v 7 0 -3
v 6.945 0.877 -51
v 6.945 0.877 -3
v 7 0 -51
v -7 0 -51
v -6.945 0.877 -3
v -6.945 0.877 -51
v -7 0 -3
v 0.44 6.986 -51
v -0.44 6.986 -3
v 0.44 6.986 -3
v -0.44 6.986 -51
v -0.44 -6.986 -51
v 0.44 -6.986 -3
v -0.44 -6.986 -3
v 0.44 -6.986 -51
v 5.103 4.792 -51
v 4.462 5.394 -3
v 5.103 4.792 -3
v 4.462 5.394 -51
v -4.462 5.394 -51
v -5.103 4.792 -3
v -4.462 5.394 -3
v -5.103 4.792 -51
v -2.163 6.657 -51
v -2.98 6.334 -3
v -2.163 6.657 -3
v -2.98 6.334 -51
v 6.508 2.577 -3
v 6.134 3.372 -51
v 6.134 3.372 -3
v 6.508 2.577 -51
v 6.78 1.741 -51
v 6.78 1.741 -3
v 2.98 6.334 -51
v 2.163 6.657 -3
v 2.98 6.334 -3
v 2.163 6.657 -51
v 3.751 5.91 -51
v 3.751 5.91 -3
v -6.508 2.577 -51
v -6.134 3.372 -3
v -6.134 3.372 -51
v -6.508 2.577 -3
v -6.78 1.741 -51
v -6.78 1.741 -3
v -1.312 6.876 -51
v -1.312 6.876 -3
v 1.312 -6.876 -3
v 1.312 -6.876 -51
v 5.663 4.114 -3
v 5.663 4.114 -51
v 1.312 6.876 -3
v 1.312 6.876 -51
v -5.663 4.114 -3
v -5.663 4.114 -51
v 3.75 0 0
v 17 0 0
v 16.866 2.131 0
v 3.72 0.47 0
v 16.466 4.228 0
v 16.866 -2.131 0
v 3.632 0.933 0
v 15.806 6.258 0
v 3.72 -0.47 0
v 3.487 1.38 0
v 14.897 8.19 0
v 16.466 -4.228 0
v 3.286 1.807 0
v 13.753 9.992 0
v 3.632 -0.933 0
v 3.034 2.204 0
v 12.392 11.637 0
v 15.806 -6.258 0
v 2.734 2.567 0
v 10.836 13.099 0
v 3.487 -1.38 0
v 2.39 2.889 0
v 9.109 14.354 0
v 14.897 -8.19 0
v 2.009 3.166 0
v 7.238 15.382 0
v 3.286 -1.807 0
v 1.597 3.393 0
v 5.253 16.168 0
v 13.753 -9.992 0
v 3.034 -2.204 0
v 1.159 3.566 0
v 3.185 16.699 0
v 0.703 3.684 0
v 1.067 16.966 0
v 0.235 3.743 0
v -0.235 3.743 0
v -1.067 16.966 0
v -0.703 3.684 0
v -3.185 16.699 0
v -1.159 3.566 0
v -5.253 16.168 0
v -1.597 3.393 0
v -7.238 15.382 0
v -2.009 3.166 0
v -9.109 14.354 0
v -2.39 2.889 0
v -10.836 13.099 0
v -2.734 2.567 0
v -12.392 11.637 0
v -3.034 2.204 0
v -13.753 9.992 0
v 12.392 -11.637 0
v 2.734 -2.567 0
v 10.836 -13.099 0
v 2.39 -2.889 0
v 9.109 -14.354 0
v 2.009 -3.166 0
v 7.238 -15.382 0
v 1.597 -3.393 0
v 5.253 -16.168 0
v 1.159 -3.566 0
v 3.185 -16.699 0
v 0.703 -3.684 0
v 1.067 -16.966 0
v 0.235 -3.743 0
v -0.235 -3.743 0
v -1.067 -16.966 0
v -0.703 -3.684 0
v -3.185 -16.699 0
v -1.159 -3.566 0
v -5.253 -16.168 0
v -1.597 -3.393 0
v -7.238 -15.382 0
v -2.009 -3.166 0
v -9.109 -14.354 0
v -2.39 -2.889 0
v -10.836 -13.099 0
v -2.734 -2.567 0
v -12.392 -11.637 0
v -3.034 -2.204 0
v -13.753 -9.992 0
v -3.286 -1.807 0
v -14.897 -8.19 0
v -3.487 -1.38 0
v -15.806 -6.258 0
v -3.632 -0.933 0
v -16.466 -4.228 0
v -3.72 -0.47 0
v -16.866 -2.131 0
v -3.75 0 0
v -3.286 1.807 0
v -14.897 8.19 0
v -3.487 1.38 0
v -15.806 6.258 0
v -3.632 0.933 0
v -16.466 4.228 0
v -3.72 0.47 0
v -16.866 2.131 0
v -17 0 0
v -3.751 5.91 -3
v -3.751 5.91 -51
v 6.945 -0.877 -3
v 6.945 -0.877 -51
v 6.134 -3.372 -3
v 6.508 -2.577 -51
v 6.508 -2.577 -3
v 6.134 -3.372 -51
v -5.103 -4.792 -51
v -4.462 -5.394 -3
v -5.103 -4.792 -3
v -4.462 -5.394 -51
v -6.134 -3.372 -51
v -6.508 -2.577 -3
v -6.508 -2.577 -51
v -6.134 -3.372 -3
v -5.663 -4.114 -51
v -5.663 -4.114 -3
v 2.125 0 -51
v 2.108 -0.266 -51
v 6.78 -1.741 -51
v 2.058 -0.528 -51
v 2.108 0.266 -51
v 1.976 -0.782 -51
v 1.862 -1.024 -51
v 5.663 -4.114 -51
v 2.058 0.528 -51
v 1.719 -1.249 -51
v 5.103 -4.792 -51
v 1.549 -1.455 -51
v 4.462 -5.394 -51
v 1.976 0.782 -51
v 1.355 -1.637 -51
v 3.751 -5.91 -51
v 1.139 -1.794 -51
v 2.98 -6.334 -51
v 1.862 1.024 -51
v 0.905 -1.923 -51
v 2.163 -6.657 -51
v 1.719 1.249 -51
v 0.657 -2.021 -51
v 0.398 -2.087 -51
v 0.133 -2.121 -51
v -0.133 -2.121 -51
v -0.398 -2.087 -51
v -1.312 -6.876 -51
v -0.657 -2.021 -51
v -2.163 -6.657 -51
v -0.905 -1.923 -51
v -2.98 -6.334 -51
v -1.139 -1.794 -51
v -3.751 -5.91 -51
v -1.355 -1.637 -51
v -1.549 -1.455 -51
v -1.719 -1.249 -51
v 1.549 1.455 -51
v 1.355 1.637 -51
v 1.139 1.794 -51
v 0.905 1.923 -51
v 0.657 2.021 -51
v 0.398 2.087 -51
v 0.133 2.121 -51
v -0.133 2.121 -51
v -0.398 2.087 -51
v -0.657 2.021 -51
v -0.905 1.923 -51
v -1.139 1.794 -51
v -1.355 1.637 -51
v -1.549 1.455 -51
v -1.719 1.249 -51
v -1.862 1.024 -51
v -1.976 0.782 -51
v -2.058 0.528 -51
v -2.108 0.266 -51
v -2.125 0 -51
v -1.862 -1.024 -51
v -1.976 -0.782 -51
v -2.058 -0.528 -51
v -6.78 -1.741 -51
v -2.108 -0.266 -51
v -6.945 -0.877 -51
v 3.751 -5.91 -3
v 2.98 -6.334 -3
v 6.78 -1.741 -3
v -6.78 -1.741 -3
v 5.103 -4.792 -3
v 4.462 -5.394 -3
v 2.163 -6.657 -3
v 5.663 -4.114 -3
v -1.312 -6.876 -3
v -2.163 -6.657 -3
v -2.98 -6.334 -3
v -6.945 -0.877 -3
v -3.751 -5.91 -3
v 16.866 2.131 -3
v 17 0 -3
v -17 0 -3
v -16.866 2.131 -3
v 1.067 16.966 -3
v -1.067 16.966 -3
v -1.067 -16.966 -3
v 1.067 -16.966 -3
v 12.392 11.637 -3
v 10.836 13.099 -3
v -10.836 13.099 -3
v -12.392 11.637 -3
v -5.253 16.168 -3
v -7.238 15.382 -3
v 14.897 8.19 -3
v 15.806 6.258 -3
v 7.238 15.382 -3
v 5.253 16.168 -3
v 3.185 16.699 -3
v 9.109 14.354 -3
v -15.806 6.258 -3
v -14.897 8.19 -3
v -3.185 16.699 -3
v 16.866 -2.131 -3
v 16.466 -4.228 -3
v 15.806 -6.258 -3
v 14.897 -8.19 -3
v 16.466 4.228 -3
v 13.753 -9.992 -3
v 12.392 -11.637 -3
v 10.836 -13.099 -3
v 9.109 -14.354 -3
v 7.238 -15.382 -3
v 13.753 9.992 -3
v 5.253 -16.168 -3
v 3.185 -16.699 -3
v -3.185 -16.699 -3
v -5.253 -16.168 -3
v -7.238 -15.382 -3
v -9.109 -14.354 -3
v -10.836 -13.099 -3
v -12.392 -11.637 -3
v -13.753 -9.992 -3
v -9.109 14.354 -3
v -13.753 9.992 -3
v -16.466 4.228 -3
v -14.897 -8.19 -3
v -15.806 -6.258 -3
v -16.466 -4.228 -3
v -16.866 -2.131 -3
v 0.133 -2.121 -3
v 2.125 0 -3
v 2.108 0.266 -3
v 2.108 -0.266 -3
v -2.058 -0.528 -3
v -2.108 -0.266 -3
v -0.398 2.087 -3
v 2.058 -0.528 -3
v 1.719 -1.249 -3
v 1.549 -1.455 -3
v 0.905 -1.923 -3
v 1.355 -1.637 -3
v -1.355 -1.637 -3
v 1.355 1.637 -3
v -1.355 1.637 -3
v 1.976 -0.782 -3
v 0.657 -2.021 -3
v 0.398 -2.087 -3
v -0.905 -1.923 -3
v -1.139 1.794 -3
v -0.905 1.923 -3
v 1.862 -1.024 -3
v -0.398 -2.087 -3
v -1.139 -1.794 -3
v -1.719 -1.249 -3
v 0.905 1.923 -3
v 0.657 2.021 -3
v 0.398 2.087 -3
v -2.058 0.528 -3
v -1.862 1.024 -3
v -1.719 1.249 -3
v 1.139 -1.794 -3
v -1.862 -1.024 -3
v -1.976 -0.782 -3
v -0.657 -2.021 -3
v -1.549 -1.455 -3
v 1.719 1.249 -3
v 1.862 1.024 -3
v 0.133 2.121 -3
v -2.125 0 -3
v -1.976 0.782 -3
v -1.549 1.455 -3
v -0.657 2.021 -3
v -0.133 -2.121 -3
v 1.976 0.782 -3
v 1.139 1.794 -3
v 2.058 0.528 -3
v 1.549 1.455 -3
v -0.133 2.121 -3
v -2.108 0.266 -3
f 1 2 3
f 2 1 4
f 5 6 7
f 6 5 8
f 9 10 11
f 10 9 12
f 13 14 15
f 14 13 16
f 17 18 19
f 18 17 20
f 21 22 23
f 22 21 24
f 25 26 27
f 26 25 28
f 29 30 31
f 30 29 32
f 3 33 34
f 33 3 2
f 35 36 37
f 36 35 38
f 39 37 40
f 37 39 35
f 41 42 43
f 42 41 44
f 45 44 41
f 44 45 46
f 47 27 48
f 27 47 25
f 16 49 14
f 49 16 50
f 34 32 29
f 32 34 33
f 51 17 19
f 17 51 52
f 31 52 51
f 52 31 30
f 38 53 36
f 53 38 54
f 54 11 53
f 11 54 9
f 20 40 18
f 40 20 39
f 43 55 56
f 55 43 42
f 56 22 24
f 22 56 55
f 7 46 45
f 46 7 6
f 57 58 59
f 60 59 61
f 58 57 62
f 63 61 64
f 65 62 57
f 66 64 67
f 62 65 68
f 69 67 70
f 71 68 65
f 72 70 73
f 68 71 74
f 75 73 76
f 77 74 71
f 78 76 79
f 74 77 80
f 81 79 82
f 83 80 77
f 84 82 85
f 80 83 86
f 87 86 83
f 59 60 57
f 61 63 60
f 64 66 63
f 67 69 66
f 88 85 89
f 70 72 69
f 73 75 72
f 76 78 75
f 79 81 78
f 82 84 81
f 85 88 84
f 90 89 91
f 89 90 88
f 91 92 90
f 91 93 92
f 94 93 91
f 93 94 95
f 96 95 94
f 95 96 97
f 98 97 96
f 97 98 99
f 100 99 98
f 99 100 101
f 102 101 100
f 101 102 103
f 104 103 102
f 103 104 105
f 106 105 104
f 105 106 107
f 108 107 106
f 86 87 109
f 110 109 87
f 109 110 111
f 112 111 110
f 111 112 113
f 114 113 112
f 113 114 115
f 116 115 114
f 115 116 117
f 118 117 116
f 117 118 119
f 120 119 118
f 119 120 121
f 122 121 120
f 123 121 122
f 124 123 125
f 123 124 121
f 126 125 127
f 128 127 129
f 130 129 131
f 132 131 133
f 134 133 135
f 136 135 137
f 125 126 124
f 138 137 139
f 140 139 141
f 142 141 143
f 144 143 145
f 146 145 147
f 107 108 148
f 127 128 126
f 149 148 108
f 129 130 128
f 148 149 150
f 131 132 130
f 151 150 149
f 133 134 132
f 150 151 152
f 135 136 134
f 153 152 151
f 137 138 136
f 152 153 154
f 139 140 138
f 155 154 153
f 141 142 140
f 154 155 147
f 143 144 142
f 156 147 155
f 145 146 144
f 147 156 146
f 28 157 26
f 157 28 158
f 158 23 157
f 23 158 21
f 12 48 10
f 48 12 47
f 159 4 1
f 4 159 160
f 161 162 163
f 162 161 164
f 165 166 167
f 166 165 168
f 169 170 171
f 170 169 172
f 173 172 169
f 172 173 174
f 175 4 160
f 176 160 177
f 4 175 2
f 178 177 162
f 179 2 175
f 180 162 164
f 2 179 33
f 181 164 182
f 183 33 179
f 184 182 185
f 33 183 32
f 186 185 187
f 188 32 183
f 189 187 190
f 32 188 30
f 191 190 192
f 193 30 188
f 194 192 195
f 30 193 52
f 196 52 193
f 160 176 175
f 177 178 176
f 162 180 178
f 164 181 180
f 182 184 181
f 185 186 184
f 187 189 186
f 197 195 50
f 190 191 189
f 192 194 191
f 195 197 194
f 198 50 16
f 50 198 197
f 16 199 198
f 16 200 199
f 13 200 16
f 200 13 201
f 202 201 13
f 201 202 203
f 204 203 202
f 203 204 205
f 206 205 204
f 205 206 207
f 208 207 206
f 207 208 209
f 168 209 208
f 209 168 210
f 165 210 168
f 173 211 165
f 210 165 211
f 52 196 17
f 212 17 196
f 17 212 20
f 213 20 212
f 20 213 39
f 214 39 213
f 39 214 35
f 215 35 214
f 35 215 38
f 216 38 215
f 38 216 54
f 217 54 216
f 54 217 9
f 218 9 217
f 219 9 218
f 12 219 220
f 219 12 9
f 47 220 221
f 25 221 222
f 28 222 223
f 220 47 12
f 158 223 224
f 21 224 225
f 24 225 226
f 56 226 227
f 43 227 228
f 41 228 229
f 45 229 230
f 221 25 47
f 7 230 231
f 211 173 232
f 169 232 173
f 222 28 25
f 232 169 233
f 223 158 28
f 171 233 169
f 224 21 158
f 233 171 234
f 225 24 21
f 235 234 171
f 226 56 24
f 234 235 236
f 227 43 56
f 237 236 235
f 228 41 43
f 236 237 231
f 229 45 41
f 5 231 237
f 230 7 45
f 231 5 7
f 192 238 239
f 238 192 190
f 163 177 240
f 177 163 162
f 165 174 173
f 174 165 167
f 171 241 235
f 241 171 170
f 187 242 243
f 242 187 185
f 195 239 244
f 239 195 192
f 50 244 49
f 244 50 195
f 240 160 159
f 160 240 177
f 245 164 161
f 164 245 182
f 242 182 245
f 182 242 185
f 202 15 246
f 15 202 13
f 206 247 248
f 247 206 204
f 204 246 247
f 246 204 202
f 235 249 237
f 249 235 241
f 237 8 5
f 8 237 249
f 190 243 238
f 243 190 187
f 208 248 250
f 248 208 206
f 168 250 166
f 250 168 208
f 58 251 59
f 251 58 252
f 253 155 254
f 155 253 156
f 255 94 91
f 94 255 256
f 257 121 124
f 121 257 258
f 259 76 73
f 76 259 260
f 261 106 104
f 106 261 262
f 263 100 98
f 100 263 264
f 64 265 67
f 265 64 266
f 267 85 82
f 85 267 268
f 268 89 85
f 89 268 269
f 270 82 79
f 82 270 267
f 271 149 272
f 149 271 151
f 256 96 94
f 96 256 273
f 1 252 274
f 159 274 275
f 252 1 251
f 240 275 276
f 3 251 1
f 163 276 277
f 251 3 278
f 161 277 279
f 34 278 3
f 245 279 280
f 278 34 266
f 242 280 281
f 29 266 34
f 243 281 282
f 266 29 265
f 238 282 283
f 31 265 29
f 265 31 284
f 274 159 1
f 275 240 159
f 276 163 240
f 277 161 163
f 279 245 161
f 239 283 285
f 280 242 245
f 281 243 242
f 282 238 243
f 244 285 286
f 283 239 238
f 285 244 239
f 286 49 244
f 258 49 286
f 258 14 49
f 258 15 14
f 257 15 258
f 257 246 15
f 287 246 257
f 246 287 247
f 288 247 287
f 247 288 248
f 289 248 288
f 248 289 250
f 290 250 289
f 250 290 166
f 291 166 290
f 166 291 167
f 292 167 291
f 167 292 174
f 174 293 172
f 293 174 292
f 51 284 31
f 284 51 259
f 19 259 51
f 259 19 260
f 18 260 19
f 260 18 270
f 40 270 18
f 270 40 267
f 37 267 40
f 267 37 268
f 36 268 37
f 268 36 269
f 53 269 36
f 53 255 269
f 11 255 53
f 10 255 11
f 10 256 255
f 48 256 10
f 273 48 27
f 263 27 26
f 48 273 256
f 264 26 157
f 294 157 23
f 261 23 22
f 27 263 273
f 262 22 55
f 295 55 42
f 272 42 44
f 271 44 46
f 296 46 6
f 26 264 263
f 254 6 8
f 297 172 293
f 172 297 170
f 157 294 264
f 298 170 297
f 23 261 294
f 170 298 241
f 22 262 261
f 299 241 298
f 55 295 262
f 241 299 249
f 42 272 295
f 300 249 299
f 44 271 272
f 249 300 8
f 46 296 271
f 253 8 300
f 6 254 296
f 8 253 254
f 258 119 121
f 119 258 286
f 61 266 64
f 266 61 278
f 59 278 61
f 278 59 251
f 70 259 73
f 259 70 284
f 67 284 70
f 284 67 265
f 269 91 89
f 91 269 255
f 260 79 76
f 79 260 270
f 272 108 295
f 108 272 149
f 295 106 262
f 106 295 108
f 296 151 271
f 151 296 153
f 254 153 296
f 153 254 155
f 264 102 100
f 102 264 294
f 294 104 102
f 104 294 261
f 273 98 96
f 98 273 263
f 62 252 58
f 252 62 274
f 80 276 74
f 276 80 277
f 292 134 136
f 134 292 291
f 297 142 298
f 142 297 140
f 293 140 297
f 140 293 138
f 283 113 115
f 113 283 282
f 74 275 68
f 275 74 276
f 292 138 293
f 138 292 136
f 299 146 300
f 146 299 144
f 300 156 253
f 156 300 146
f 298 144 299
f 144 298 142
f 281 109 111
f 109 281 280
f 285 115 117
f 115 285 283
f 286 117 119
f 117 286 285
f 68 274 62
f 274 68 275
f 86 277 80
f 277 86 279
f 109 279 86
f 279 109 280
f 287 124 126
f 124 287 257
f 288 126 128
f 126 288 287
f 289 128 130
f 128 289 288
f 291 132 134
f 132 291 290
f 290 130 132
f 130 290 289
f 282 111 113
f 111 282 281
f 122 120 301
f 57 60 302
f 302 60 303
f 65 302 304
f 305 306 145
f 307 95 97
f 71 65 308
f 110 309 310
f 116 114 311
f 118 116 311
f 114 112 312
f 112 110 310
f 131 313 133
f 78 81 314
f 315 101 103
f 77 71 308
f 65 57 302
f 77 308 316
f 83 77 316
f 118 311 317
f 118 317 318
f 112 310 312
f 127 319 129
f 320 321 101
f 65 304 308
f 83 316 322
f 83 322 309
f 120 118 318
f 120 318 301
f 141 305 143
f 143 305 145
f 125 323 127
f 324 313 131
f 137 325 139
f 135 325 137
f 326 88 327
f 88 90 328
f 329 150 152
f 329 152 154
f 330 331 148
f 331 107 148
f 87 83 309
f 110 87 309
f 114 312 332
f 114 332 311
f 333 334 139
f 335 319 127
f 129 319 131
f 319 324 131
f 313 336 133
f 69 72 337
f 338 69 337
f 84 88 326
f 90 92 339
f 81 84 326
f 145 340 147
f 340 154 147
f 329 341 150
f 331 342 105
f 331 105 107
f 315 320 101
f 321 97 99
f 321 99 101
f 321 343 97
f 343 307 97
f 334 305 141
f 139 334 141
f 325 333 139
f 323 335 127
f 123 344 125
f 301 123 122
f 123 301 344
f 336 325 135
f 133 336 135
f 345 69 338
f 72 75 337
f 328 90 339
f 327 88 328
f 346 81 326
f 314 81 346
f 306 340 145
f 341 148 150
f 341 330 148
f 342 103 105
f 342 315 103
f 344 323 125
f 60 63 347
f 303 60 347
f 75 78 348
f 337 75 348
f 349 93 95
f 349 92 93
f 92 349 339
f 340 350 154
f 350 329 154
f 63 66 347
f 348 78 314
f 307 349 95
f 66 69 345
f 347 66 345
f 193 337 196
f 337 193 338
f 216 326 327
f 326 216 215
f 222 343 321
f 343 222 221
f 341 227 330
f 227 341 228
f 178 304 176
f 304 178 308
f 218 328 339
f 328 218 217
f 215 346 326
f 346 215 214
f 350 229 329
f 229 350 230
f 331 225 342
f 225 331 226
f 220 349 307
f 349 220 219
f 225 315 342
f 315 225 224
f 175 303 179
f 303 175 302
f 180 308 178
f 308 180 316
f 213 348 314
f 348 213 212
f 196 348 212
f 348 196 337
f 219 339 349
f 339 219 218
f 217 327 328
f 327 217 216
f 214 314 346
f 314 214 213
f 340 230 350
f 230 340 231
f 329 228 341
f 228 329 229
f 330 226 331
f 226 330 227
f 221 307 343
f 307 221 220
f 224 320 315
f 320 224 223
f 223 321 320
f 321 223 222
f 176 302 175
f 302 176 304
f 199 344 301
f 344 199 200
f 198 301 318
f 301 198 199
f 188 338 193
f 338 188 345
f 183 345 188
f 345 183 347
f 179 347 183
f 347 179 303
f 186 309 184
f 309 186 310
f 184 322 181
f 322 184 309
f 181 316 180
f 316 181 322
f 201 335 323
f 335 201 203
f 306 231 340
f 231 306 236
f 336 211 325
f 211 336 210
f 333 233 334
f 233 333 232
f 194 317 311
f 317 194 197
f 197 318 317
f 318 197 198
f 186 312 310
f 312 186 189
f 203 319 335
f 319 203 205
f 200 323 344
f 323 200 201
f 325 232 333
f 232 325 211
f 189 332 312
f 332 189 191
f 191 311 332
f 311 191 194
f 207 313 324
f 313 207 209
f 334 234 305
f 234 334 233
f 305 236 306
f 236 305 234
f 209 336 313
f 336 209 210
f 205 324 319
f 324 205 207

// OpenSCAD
$fn = 50;


difference() {
	union() {
		translate(v = [0, 0, -51.0000000000]) {
			cylinder(h = 51, r = 7.0000000000);
		}
		translate(v = [0, 0, -3.0000000000]) {
			cylinder(h = 3, r = 17.0000000000);
		}
	}
	union() {
		translate(v = [0, 0, 0]) {
			rotate(a = [0, 0, 0]) {
				difference() {
					union() {
						#translate(v = [0, 0, -51.0000000000]) {
							cylinder(h = 51, r = 2.0000000000);
						}
						#translate(v = [0, 0, -3]) {
							cylinder(h = 3, r1 = 2.1250000000, r2 = 3.7500000000);
						}
						#translate(v = [0, 0, -51.0000000000]) {
							cylinder(h = 51, r = 2.1250000000);
						}
						#translate(v = [0, 0, -51.0000000000]) {
							cylinder(h = 51, r = 2.0000000000);
						}
					}
					union();
				}
			}
		}
	}
}
